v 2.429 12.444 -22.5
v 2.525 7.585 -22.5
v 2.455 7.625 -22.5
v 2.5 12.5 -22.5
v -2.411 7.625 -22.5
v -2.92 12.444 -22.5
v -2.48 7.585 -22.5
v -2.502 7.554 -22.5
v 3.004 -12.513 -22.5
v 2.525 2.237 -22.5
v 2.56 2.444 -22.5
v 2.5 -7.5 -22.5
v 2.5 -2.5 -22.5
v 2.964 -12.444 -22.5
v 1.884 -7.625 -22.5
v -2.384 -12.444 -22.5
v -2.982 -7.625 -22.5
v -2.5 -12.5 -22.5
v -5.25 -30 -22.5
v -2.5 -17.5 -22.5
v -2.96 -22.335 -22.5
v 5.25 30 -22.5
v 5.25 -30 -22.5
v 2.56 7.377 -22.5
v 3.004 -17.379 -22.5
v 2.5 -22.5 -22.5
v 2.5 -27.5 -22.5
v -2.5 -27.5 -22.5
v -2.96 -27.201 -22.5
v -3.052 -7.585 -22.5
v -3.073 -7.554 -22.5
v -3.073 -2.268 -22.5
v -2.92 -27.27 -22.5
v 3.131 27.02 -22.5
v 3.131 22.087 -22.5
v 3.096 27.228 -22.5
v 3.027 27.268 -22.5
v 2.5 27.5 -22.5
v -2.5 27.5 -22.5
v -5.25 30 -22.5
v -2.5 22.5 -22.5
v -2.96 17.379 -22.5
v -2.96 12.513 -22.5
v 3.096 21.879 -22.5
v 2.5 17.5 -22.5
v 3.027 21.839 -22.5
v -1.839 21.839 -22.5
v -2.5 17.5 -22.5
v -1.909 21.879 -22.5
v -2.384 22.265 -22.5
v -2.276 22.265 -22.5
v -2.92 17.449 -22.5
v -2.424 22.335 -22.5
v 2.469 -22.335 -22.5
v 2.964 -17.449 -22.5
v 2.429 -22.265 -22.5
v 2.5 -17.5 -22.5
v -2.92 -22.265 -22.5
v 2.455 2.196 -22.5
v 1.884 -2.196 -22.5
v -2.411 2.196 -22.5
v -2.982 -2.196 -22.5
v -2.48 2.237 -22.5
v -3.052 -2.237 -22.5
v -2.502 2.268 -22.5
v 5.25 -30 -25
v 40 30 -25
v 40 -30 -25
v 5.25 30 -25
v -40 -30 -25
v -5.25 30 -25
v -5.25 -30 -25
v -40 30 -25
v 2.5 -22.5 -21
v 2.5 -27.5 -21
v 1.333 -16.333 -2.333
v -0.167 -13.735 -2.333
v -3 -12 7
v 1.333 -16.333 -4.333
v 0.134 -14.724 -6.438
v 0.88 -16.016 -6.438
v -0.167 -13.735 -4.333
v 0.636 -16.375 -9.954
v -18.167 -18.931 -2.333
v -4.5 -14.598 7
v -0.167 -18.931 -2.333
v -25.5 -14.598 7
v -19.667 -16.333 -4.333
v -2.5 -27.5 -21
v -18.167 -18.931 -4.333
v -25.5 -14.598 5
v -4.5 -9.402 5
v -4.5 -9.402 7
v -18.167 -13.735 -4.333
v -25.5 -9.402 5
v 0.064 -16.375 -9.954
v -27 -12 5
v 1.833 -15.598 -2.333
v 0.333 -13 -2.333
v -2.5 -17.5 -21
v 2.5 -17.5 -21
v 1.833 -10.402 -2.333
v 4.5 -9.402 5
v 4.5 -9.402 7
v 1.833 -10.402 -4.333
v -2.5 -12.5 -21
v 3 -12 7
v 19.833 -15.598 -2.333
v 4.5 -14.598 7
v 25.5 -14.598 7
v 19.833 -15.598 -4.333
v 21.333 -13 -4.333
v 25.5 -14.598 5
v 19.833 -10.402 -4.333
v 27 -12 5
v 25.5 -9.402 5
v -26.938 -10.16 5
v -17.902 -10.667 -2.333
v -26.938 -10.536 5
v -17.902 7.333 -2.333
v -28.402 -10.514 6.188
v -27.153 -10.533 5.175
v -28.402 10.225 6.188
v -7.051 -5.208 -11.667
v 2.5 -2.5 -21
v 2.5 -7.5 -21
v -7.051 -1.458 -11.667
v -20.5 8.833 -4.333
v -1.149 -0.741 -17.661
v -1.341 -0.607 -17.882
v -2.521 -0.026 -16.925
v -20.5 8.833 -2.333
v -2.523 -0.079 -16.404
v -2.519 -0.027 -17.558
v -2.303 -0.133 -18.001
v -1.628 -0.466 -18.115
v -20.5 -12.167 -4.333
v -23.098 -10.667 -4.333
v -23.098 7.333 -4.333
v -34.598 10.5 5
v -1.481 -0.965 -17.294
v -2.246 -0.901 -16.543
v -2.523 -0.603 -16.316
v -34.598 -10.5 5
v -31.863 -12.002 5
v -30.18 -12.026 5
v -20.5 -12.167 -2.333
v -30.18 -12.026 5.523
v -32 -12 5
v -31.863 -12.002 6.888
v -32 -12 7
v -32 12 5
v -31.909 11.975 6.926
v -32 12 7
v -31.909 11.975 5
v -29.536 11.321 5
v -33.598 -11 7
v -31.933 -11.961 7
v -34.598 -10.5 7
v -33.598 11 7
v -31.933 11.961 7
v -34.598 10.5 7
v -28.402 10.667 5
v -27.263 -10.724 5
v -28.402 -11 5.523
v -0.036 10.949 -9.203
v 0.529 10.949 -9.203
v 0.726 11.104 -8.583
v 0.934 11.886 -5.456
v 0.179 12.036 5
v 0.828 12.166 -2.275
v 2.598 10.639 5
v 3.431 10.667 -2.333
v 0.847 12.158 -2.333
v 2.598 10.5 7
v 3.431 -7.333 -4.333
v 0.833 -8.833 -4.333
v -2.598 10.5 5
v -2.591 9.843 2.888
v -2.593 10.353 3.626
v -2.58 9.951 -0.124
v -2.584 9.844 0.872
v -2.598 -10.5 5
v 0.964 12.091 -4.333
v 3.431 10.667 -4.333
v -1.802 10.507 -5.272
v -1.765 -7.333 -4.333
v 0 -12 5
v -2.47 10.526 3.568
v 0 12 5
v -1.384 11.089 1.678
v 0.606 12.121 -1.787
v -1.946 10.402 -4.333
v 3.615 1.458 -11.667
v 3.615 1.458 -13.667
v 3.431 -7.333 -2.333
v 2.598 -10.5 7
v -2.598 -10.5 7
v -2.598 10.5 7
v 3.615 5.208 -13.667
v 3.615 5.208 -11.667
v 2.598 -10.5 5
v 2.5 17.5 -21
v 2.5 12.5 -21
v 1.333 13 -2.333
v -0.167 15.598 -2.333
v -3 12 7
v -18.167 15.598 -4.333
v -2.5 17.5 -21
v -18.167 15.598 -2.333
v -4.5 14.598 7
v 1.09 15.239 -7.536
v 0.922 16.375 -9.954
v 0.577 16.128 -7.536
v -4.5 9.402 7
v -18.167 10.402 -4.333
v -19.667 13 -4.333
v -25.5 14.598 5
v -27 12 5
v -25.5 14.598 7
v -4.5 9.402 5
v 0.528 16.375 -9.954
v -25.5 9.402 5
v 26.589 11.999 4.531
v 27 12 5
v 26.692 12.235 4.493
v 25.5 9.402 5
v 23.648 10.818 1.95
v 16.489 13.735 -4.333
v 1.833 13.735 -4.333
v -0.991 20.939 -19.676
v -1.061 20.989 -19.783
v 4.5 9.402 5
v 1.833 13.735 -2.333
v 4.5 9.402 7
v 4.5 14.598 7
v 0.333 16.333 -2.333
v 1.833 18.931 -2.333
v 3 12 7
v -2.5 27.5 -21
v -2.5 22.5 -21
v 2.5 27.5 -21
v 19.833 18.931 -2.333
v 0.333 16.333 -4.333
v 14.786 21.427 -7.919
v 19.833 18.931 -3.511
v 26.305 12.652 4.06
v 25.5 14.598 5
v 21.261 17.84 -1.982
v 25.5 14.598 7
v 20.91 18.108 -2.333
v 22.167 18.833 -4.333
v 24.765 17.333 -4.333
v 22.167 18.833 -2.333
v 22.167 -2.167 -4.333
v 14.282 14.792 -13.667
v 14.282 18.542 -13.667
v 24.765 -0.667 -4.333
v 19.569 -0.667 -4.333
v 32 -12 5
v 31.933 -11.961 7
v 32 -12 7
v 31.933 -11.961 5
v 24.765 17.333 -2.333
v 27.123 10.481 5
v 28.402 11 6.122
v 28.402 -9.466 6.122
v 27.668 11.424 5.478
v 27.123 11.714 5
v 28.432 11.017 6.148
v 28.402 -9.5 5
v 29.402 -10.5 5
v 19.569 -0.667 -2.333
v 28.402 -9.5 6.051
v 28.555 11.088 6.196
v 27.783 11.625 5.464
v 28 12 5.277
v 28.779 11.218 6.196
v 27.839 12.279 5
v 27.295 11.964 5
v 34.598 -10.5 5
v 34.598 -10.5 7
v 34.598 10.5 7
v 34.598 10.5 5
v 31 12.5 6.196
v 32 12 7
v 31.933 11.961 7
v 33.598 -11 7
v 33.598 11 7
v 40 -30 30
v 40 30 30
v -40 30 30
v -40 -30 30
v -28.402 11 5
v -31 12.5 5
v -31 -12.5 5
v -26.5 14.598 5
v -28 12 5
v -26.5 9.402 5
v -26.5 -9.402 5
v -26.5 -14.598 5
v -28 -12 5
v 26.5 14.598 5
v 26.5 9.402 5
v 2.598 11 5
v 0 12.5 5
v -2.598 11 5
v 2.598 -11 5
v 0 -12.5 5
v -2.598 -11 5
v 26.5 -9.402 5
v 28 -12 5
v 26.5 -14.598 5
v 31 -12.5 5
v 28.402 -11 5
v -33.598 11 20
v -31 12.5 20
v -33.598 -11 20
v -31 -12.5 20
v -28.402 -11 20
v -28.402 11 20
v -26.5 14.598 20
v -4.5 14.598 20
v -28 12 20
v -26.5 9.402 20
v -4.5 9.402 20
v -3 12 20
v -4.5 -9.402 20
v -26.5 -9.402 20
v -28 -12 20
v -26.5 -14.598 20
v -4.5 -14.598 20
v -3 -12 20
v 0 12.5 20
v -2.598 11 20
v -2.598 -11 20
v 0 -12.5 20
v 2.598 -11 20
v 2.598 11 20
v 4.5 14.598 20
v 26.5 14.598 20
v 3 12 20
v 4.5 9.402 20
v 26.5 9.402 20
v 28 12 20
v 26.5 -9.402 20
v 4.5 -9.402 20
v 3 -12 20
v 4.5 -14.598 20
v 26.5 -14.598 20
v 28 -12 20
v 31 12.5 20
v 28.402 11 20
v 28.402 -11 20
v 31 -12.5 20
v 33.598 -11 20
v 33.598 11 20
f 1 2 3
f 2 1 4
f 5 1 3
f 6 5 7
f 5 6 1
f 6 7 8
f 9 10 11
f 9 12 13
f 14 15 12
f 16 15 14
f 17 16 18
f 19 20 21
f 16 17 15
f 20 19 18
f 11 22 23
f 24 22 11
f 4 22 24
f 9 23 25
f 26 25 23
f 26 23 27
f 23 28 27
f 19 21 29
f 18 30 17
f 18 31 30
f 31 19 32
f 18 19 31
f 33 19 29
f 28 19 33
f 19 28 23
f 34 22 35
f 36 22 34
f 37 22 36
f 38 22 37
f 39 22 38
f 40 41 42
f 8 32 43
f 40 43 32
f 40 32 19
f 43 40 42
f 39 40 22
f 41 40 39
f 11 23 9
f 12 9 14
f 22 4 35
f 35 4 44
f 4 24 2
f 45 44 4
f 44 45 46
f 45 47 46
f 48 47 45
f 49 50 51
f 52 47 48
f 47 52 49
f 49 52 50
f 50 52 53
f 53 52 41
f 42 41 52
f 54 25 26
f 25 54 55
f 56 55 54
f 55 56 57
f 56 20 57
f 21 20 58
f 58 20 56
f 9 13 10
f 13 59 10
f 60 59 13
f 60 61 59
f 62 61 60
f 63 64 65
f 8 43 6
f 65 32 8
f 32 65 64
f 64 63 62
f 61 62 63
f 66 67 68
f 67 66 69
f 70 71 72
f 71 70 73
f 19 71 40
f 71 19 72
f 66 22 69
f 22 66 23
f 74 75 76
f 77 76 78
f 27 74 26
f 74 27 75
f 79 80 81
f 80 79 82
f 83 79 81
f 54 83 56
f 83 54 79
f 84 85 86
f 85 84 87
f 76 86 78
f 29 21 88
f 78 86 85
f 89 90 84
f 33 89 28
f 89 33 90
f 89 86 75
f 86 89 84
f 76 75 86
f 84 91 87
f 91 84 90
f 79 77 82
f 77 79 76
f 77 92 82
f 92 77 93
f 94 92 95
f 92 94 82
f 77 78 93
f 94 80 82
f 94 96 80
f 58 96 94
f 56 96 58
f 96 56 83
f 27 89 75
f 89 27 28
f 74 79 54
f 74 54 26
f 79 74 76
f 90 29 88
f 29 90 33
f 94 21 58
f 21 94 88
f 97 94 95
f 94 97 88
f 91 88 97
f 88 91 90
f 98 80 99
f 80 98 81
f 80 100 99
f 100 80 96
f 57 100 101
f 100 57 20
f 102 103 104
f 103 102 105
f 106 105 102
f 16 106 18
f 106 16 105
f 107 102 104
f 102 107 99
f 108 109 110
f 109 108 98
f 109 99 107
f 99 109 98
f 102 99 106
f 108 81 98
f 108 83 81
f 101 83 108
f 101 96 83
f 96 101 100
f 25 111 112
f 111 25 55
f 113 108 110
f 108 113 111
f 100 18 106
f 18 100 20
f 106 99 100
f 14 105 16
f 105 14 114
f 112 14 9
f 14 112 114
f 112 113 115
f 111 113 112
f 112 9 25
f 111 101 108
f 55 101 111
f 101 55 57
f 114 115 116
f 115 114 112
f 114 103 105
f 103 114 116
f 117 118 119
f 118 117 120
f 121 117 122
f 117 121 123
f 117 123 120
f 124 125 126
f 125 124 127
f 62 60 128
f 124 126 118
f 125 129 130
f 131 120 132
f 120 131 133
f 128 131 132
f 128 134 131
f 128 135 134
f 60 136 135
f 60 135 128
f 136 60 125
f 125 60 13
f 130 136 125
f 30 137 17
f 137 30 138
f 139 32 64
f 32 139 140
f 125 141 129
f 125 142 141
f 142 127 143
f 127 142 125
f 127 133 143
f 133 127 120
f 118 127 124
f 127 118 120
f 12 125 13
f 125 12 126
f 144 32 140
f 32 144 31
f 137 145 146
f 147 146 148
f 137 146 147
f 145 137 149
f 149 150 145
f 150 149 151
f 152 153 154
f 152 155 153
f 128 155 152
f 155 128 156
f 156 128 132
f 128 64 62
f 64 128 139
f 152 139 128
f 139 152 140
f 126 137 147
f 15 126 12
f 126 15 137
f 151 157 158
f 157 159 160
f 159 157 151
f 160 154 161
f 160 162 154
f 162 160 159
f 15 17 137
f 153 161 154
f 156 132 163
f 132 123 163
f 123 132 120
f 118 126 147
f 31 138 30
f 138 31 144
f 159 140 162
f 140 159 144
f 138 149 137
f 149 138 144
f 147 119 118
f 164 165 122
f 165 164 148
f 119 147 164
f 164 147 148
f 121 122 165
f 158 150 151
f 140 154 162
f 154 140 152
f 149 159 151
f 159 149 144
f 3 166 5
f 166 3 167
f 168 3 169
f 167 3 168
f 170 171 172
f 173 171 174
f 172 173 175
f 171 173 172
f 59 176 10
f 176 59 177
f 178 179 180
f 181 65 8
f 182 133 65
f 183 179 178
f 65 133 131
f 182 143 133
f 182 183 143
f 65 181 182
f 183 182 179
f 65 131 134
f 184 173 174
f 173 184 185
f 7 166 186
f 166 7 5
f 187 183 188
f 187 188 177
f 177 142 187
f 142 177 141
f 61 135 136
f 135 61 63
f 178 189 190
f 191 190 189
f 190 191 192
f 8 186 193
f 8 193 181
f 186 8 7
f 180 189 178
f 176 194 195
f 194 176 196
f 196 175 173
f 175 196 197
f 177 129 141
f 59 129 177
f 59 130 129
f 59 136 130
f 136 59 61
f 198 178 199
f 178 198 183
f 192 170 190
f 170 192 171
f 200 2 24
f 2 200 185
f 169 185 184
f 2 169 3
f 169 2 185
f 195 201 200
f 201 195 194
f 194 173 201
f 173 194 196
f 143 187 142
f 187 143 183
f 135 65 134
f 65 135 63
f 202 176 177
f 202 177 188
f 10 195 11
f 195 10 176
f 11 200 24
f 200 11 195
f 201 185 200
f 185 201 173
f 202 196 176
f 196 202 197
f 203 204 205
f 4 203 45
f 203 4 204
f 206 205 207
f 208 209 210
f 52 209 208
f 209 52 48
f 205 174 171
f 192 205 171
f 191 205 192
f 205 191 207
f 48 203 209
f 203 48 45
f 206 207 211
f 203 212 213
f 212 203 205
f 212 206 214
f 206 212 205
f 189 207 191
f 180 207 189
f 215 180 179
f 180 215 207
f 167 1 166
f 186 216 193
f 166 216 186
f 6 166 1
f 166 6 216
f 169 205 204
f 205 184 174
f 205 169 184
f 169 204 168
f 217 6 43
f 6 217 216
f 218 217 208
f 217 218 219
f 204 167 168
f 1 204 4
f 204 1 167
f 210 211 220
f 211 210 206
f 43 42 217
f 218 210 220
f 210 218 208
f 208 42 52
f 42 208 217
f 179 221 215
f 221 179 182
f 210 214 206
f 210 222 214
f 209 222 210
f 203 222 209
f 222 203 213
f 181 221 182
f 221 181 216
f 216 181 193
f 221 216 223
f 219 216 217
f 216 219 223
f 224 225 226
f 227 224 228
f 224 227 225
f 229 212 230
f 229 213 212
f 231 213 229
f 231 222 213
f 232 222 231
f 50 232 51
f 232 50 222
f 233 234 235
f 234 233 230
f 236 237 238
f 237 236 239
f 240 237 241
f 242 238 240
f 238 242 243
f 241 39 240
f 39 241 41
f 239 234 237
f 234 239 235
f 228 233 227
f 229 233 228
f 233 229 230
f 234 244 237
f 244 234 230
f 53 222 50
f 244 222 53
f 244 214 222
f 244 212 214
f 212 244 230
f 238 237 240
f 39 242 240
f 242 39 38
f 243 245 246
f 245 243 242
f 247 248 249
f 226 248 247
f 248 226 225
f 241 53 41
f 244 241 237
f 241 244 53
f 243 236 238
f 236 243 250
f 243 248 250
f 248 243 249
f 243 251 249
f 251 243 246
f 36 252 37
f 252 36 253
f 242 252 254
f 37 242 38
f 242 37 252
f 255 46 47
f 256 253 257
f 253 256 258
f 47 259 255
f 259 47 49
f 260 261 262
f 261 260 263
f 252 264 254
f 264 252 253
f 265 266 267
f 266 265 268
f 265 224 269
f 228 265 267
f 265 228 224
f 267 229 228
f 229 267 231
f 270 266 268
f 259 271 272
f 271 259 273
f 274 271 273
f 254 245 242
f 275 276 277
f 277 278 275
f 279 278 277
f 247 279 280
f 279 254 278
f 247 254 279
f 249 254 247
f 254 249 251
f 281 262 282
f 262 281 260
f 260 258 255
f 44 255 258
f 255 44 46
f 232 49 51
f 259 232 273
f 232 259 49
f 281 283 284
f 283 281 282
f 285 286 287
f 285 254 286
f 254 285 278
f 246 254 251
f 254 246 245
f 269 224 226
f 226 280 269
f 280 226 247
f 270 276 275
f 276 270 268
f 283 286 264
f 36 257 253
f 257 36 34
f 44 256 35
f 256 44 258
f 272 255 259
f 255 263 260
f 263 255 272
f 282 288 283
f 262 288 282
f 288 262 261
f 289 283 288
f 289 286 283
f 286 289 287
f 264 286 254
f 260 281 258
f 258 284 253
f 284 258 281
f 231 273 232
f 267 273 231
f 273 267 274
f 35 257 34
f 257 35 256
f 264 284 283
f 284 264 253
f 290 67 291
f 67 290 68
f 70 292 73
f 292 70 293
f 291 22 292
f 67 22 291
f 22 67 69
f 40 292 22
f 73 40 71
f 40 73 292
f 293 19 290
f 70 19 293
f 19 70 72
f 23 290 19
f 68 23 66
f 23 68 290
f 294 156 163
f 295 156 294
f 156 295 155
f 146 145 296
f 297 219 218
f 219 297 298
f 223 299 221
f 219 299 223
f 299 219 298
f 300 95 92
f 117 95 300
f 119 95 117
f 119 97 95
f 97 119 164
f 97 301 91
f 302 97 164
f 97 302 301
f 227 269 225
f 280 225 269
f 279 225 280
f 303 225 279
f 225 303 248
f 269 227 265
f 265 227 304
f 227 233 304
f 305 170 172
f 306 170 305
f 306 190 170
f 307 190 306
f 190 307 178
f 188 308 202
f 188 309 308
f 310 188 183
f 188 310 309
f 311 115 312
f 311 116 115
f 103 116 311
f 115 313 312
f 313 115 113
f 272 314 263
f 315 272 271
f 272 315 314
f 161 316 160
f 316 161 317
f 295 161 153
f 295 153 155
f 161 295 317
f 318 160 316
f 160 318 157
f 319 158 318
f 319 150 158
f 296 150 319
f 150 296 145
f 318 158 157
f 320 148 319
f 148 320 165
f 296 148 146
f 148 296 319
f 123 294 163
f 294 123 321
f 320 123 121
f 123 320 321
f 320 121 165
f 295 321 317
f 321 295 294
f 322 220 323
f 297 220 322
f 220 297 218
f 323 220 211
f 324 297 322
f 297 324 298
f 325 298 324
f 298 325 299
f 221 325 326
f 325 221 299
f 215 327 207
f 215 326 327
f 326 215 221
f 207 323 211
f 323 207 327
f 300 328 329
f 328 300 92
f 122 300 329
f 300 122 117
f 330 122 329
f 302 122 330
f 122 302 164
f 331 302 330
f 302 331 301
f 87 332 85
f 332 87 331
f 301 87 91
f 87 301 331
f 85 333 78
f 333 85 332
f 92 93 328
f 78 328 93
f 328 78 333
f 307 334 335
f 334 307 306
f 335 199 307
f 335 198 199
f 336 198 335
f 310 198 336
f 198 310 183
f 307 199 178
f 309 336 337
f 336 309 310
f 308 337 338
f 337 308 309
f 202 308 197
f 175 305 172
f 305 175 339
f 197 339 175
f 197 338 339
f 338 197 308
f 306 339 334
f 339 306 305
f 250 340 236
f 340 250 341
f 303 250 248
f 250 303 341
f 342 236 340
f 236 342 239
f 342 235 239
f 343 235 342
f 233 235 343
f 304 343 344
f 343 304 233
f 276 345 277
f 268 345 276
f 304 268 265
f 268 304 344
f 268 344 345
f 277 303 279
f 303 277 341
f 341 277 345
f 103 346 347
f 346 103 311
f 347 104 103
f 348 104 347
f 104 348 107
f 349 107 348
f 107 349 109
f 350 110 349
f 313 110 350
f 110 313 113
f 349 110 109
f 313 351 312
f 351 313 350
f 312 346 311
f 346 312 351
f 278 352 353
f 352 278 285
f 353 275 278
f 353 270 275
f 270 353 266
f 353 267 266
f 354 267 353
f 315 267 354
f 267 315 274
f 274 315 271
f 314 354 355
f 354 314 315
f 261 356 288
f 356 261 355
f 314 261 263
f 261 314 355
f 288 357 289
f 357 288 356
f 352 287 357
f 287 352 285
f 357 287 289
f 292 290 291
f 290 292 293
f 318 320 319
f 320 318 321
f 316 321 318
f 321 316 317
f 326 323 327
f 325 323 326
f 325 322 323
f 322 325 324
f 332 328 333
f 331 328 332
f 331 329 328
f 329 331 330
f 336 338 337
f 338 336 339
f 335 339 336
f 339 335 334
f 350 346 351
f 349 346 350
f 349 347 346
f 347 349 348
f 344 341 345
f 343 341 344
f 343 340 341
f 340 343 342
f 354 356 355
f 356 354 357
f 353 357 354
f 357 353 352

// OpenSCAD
// WS2812 LED Strip Parameters - verified measurements
led_spacing = 10;      // 10mm between LED centers
strip_width = 10;      // 10mm wide LED strip
strip_height = 2;      // Keep same
tolerance = 0.5;       // Keep same
led_size = 5;         // 5mm square LED cutouts

// Base Parameters
base_width = 80;
base_length = 60;
base_height = 50;
wire_channel_length = 10;  // Length of wire channels on each end

// Light pipe parameters
cavity_width_bottom = 3;  
cavity_width_top = 6;
path_separation = 8;      

// 7-Segment Display Parameters - adjusted for 90° rotation
segment_h_length = 25;    // Now represents vertical segments
segment_v_length = 25;    // Now represents horizontal segments
segment_width = 6;
segment_depth = 20;
segment_spacing = 3;
x_offset = 12;

// Add diffuser parameters
diffuser_height = 10;

// LED Strip Channel with wire channels - centered
module led_channel() {
    rotate([0, 0, 90]) {
        // Main channel exactly 10mm wide plus tolerance
        translate([-base_width/2 + wire_channel_length, -strip_width/2 - tolerance/2, -base_height/2])
            cube([base_width - 2*wire_channel_length, strip_width + tolerance, strip_height + tolerance]);
        
        // Wire channels same width
        translate([-base_width/2, -strip_width/2 - tolerance/2, -base_height/2])
            cube([wire_channel_length, strip_width + tolerance, strip_height + tolerance]);
        translate([base_width/2 - wire_channel_length, -strip_width/2 - tolerance/2, -base_height/2])
            cube([wire_channel_length, strip_width + tolerance, strip_height + tolerance]);
    }
}

// Single light pipe cavity with elongating shape
module light_cavity(led_pos, segment_pos, is_horizontal=false) {
    // Calculate vertical progress for shape interpolation
    z_bottom = -base_height/2 + strip_height;
    z_middle = 0;
    z_top = base_height/2 - segment_depth;
    
    hull() {
        // Bottom (at LED) - small square
        translate([led_pos[0] - led_size/2, led_pos[1], z_bottom])
            cube([led_size, led_size, 2]);
        
        // Lower transition point - starting to elongate
        translate([
            (led_pos[0]*2 + segment_pos[0])/3, 
            (led_pos[1]*2 + segment_pos[1])/3, 
            z_bottom + (z_top - z_bottom)/3
        ]) {
            rotate([0, 0, is_horizontal ? 0 : 90])
                linear_extrude(height=2)
                    segment(segment_width*0.5, cavity_width_bottom*1.5);
        }
        
        // Upper transition point - more elongated
        translate([
            (led_pos[0] + segment_pos[0]*2)/3, 
            (led_pos[1] + segment_pos[1]*2)/3, 
            z_bottom + 2*(z_top - z_bottom)/3
        ]) {
            rotate([0, 0, is_horizontal ? 0 : 90])
                linear_extrude(height=2)
                    segment(segment_width*3.5, cavity_width_top);
        }
            
        // Top (at segment) - full segment shape
        translate([segment_pos[0], segment_pos[1], z_top]) {
            rotate([0, 0, is_horizontal ? 0 : 90])
                linear_extrude(height=2)
                    segment(segment_width*4, segment_width);
        }
    }
}

// All light cavities with corrected segment positions and mirroring
module all_cavities(visualization=false) {
    color_alpha = visualization ? ["Red", 0.8] : ["Gold", 1];
    
    color(color_alpha[0], color_alpha[1])
    rotate([0, 0, 90]) {
        y_offset = -strip_width/4;
        
        // LED positions (x, y)
        led1 = [-25, y_offset];  // LED1
        led2 = [-15, y_offset];  // LED2
        led3 = [-5, y_offset];   // LED3
        led4 = [5, y_offset];    // LED4
        led5 = [15, y_offset];   // LED5
        led6 = [25, y_offset];   // LED6
        
        // Segment positions (x, y) - scaled from Python coordinates
        seg_f = [-12, 15];    // F (top left vertical)
        seg_e = [-12, -15];   // E (bottom left vertical)
        seg_a = [0, 32];      // A (top horizontal)
        seg_g = [0, 0];       // G (middle)
        seg_b = [12, 15];     // B (top right vertical)
        seg_c = [12, -15];    // C (bottom right vertical)
        seg_d = [0, -32];     // D (bottom horizontal)
        
        // Light paths
        light_cavity(led1, seg_f, false);   // LED1 → F (vertical)
        light_cavity(led2, seg_e, false);   // LED2 → E (vertical)
        light_cavity(led3, seg_a, true);    // LED3 → A (horizontal)
        light_cavity(led4, seg_g, true);    // LED4 → G (horizontal)
        light_cavity(led5, seg_b, false);   // LED5 → B (vertical)
        light_cavity(led6, seg_c, false);   // LED6 → C (vertical)
        light_cavity(led6, seg_d, true);    // LED6 → D (horizontal)
    }
}

// Base with LED channel and cavities
module base() {
    difference() {
        // Main block
        cube([base_width, base_length, base_height], center=true);
        // LED channel with wire channels
        led_channel();
        // Light pipe cavities
        all_cavities(false);  // Use same paths for actual cavities
        
        // Ensure cavities connect to segments
        translate([0, 0, base_height/2 - segment_depth])
            linear_extrude(height=segment_depth + 1)
                seven_segments();
    }
}

module segment(length, width) {
    // Elongated hexagonal shape
    hull() {
        translate([-length/2 + width/2, 0, 0]) 
            circle(d=width, $fn=6);
        translate([length/2 - width/2, 0, 0])  
            circle(d=width, $fn=6);
    }
}

module seven_segments() {
    rotate([0, 0, 90])  // Rotate the entire segment layout 90°
    union() {
        // A (now right horizontal)
        translate([0, segment_v_length + segment_spacing*2, 0]) 
            segment(segment_h_length, segment_width);
        
        // B,F (now top and bottom verticals on right side)
        translate([x_offset, segment_v_length/2 + segment_spacing, 0]) 
            rotate([0,0,90]) 
                segment(segment_v_length, segment_width);  // B
        translate([-x_offset, segment_v_length/2 + segment_spacing, 0]) 
            rotate([0,0,90]) 
                segment(segment_v_length, segment_width);  // F
        
        // G (middle horizontal, now vertical)
        translate([0, 0, 0])
            segment(segment_h_length, segment_width);
        
        // C,E (bottom verticals, now left side horizontals)
        translate([x_offset, -segment_v_length/2 - segment_spacing, 0]) 
            rotate([0,0,90]) 
                segment(segment_v_length, segment_width);  // C
        translate([-x_offset, -segment_v_length/2 - segment_spacing, 0]) 
            rotate([0,0,90]) 
                segment(segment_v_length, segment_width);  // E
        
        // D (now left horizontal)
        translate([0, -segment_v_length - segment_spacing*2, 0]) 
            segment(segment_h_length, segment_width);
    }
}

// Top layer with segment cavities
module segment_layer() {
    color("SteelBlue")
    difference() {
        // Main plate - extended to match base
        translate([0, 0, base_height/2])
            cube([base_width, base_length, segment_depth], center=true);
        
        // Individual segment cavities
        translate([0, 0, base_height/2 - segment_depth/2])
            linear_extrude(height=segment_depth + 1)
                seven_segments();
    }
}

// Diffuser layer module
module diffuser_layer() {
    color("White", alpha=0.2)  // Semi-transparent to visualize
    translate([0, 0, base_height/2])  // Changed to sit directly on base
        cube([base_width, base_length, diffuser_height], center=true);
}

// Render just the paths in red with slight transparency
// all_cavities(true);  // Show paths
color("Green", alpha=0.9)
union() {
   base();
   diffuser_layer();
}
   
